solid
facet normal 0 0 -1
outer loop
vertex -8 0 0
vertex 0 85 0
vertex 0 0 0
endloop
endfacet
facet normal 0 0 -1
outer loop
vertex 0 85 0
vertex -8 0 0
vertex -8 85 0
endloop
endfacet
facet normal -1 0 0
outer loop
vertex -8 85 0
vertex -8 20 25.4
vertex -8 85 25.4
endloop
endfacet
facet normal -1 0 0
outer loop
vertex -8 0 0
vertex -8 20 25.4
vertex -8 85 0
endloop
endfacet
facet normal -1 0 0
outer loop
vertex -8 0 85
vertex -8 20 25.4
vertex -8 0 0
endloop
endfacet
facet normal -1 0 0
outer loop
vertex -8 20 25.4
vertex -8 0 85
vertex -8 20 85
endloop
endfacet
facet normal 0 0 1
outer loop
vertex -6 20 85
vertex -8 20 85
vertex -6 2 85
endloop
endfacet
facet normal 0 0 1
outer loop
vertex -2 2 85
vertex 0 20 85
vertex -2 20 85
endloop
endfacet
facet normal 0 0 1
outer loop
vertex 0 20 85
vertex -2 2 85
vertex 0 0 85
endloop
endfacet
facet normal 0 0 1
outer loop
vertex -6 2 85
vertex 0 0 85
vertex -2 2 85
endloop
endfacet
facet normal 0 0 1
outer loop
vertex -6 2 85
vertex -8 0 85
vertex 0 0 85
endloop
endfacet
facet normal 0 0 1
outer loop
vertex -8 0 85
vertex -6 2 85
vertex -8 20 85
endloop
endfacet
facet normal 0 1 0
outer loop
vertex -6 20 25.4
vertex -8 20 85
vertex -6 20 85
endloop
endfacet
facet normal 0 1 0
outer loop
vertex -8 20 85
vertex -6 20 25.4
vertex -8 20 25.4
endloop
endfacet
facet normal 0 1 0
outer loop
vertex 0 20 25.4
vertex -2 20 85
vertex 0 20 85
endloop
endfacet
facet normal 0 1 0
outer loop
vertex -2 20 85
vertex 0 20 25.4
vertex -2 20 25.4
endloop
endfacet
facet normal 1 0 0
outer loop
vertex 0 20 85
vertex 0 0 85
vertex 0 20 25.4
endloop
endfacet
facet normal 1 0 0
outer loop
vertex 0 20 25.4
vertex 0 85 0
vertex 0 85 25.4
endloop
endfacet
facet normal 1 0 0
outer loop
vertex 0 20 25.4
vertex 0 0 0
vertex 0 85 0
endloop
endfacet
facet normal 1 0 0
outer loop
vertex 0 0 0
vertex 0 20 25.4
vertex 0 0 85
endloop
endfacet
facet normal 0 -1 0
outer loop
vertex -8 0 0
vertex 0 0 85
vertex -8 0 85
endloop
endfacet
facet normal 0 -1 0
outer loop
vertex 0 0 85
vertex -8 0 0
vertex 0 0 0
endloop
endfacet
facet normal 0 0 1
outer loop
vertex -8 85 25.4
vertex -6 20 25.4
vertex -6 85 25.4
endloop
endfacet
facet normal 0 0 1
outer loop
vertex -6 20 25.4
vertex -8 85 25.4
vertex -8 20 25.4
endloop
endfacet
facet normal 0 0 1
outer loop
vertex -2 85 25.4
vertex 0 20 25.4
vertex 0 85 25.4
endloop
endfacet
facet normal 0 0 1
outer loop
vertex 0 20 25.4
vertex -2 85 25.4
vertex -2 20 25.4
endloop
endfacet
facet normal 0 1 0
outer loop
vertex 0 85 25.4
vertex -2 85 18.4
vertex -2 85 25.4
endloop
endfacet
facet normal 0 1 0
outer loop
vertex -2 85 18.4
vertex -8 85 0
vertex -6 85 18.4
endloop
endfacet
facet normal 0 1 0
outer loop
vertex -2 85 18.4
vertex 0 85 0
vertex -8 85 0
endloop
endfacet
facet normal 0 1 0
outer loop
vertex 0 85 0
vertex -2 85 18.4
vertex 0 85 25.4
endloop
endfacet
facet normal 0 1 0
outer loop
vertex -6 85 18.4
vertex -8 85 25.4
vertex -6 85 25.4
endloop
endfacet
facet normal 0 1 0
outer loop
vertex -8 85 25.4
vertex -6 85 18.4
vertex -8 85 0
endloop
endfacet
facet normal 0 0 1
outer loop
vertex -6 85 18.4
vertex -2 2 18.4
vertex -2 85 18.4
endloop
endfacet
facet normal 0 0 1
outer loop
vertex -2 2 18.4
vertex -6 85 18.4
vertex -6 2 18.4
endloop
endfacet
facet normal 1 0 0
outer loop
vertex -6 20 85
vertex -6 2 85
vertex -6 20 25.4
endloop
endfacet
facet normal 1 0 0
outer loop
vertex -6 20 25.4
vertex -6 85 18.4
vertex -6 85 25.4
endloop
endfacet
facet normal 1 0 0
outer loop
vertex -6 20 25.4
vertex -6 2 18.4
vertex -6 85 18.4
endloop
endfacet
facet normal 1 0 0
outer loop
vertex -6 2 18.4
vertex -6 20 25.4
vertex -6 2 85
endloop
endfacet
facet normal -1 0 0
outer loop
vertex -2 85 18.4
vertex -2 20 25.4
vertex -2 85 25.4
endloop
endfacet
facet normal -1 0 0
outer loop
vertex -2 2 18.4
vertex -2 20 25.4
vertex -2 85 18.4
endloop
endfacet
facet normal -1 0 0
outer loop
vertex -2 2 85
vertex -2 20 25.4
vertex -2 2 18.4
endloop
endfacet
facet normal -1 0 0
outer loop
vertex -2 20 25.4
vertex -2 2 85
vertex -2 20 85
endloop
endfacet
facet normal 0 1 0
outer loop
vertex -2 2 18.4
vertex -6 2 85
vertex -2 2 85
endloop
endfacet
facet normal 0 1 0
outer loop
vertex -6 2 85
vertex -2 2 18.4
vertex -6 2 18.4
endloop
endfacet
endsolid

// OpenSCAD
/* SMEG fridge shelf front corner replacement
 *
 * The plastic corners in our SMEG fridge are quite flimsy and after a couple of
 * years they just broke away. It has been impossible to source replacements so
 * we decided to design simple functional replacements for them.
 *
 * This is a replacement for the plastic corner that goes at the front, it is
 * symmetric so you can print it in any direction for both corners.
 *
 * Author: @lluismh
 *
 * This work is licensed under a Creative Commons Attribution-ShareAlike 4.0
 * International License.
 */

$fn = 60;

length = 85;
wall_thickness = 2;
gap_thickness = 4;
sidepart_width = 25.4;
sidepart_external_width = 7;
frontpart_width = 20;
sidepart_internal_width = sidepart_width - sidepart_external_width;

total_thickness = gap_thickness + 2 * wall_thickness;

rotate(a = 90, v = [0, -1, 0]) {
  difference() {

    // Draw two cubes together

    union() {
      cube([length, frontpart_width, total_thickness]);
      cube([sidepart_width, length, total_thickness]);
    }

    // Remove the inside form both of them

    translate([sidepart_internal_width, wall_thickness, wall_thickness]) {
      cube([length, length, gap_thickness]);
    }
  }
}
